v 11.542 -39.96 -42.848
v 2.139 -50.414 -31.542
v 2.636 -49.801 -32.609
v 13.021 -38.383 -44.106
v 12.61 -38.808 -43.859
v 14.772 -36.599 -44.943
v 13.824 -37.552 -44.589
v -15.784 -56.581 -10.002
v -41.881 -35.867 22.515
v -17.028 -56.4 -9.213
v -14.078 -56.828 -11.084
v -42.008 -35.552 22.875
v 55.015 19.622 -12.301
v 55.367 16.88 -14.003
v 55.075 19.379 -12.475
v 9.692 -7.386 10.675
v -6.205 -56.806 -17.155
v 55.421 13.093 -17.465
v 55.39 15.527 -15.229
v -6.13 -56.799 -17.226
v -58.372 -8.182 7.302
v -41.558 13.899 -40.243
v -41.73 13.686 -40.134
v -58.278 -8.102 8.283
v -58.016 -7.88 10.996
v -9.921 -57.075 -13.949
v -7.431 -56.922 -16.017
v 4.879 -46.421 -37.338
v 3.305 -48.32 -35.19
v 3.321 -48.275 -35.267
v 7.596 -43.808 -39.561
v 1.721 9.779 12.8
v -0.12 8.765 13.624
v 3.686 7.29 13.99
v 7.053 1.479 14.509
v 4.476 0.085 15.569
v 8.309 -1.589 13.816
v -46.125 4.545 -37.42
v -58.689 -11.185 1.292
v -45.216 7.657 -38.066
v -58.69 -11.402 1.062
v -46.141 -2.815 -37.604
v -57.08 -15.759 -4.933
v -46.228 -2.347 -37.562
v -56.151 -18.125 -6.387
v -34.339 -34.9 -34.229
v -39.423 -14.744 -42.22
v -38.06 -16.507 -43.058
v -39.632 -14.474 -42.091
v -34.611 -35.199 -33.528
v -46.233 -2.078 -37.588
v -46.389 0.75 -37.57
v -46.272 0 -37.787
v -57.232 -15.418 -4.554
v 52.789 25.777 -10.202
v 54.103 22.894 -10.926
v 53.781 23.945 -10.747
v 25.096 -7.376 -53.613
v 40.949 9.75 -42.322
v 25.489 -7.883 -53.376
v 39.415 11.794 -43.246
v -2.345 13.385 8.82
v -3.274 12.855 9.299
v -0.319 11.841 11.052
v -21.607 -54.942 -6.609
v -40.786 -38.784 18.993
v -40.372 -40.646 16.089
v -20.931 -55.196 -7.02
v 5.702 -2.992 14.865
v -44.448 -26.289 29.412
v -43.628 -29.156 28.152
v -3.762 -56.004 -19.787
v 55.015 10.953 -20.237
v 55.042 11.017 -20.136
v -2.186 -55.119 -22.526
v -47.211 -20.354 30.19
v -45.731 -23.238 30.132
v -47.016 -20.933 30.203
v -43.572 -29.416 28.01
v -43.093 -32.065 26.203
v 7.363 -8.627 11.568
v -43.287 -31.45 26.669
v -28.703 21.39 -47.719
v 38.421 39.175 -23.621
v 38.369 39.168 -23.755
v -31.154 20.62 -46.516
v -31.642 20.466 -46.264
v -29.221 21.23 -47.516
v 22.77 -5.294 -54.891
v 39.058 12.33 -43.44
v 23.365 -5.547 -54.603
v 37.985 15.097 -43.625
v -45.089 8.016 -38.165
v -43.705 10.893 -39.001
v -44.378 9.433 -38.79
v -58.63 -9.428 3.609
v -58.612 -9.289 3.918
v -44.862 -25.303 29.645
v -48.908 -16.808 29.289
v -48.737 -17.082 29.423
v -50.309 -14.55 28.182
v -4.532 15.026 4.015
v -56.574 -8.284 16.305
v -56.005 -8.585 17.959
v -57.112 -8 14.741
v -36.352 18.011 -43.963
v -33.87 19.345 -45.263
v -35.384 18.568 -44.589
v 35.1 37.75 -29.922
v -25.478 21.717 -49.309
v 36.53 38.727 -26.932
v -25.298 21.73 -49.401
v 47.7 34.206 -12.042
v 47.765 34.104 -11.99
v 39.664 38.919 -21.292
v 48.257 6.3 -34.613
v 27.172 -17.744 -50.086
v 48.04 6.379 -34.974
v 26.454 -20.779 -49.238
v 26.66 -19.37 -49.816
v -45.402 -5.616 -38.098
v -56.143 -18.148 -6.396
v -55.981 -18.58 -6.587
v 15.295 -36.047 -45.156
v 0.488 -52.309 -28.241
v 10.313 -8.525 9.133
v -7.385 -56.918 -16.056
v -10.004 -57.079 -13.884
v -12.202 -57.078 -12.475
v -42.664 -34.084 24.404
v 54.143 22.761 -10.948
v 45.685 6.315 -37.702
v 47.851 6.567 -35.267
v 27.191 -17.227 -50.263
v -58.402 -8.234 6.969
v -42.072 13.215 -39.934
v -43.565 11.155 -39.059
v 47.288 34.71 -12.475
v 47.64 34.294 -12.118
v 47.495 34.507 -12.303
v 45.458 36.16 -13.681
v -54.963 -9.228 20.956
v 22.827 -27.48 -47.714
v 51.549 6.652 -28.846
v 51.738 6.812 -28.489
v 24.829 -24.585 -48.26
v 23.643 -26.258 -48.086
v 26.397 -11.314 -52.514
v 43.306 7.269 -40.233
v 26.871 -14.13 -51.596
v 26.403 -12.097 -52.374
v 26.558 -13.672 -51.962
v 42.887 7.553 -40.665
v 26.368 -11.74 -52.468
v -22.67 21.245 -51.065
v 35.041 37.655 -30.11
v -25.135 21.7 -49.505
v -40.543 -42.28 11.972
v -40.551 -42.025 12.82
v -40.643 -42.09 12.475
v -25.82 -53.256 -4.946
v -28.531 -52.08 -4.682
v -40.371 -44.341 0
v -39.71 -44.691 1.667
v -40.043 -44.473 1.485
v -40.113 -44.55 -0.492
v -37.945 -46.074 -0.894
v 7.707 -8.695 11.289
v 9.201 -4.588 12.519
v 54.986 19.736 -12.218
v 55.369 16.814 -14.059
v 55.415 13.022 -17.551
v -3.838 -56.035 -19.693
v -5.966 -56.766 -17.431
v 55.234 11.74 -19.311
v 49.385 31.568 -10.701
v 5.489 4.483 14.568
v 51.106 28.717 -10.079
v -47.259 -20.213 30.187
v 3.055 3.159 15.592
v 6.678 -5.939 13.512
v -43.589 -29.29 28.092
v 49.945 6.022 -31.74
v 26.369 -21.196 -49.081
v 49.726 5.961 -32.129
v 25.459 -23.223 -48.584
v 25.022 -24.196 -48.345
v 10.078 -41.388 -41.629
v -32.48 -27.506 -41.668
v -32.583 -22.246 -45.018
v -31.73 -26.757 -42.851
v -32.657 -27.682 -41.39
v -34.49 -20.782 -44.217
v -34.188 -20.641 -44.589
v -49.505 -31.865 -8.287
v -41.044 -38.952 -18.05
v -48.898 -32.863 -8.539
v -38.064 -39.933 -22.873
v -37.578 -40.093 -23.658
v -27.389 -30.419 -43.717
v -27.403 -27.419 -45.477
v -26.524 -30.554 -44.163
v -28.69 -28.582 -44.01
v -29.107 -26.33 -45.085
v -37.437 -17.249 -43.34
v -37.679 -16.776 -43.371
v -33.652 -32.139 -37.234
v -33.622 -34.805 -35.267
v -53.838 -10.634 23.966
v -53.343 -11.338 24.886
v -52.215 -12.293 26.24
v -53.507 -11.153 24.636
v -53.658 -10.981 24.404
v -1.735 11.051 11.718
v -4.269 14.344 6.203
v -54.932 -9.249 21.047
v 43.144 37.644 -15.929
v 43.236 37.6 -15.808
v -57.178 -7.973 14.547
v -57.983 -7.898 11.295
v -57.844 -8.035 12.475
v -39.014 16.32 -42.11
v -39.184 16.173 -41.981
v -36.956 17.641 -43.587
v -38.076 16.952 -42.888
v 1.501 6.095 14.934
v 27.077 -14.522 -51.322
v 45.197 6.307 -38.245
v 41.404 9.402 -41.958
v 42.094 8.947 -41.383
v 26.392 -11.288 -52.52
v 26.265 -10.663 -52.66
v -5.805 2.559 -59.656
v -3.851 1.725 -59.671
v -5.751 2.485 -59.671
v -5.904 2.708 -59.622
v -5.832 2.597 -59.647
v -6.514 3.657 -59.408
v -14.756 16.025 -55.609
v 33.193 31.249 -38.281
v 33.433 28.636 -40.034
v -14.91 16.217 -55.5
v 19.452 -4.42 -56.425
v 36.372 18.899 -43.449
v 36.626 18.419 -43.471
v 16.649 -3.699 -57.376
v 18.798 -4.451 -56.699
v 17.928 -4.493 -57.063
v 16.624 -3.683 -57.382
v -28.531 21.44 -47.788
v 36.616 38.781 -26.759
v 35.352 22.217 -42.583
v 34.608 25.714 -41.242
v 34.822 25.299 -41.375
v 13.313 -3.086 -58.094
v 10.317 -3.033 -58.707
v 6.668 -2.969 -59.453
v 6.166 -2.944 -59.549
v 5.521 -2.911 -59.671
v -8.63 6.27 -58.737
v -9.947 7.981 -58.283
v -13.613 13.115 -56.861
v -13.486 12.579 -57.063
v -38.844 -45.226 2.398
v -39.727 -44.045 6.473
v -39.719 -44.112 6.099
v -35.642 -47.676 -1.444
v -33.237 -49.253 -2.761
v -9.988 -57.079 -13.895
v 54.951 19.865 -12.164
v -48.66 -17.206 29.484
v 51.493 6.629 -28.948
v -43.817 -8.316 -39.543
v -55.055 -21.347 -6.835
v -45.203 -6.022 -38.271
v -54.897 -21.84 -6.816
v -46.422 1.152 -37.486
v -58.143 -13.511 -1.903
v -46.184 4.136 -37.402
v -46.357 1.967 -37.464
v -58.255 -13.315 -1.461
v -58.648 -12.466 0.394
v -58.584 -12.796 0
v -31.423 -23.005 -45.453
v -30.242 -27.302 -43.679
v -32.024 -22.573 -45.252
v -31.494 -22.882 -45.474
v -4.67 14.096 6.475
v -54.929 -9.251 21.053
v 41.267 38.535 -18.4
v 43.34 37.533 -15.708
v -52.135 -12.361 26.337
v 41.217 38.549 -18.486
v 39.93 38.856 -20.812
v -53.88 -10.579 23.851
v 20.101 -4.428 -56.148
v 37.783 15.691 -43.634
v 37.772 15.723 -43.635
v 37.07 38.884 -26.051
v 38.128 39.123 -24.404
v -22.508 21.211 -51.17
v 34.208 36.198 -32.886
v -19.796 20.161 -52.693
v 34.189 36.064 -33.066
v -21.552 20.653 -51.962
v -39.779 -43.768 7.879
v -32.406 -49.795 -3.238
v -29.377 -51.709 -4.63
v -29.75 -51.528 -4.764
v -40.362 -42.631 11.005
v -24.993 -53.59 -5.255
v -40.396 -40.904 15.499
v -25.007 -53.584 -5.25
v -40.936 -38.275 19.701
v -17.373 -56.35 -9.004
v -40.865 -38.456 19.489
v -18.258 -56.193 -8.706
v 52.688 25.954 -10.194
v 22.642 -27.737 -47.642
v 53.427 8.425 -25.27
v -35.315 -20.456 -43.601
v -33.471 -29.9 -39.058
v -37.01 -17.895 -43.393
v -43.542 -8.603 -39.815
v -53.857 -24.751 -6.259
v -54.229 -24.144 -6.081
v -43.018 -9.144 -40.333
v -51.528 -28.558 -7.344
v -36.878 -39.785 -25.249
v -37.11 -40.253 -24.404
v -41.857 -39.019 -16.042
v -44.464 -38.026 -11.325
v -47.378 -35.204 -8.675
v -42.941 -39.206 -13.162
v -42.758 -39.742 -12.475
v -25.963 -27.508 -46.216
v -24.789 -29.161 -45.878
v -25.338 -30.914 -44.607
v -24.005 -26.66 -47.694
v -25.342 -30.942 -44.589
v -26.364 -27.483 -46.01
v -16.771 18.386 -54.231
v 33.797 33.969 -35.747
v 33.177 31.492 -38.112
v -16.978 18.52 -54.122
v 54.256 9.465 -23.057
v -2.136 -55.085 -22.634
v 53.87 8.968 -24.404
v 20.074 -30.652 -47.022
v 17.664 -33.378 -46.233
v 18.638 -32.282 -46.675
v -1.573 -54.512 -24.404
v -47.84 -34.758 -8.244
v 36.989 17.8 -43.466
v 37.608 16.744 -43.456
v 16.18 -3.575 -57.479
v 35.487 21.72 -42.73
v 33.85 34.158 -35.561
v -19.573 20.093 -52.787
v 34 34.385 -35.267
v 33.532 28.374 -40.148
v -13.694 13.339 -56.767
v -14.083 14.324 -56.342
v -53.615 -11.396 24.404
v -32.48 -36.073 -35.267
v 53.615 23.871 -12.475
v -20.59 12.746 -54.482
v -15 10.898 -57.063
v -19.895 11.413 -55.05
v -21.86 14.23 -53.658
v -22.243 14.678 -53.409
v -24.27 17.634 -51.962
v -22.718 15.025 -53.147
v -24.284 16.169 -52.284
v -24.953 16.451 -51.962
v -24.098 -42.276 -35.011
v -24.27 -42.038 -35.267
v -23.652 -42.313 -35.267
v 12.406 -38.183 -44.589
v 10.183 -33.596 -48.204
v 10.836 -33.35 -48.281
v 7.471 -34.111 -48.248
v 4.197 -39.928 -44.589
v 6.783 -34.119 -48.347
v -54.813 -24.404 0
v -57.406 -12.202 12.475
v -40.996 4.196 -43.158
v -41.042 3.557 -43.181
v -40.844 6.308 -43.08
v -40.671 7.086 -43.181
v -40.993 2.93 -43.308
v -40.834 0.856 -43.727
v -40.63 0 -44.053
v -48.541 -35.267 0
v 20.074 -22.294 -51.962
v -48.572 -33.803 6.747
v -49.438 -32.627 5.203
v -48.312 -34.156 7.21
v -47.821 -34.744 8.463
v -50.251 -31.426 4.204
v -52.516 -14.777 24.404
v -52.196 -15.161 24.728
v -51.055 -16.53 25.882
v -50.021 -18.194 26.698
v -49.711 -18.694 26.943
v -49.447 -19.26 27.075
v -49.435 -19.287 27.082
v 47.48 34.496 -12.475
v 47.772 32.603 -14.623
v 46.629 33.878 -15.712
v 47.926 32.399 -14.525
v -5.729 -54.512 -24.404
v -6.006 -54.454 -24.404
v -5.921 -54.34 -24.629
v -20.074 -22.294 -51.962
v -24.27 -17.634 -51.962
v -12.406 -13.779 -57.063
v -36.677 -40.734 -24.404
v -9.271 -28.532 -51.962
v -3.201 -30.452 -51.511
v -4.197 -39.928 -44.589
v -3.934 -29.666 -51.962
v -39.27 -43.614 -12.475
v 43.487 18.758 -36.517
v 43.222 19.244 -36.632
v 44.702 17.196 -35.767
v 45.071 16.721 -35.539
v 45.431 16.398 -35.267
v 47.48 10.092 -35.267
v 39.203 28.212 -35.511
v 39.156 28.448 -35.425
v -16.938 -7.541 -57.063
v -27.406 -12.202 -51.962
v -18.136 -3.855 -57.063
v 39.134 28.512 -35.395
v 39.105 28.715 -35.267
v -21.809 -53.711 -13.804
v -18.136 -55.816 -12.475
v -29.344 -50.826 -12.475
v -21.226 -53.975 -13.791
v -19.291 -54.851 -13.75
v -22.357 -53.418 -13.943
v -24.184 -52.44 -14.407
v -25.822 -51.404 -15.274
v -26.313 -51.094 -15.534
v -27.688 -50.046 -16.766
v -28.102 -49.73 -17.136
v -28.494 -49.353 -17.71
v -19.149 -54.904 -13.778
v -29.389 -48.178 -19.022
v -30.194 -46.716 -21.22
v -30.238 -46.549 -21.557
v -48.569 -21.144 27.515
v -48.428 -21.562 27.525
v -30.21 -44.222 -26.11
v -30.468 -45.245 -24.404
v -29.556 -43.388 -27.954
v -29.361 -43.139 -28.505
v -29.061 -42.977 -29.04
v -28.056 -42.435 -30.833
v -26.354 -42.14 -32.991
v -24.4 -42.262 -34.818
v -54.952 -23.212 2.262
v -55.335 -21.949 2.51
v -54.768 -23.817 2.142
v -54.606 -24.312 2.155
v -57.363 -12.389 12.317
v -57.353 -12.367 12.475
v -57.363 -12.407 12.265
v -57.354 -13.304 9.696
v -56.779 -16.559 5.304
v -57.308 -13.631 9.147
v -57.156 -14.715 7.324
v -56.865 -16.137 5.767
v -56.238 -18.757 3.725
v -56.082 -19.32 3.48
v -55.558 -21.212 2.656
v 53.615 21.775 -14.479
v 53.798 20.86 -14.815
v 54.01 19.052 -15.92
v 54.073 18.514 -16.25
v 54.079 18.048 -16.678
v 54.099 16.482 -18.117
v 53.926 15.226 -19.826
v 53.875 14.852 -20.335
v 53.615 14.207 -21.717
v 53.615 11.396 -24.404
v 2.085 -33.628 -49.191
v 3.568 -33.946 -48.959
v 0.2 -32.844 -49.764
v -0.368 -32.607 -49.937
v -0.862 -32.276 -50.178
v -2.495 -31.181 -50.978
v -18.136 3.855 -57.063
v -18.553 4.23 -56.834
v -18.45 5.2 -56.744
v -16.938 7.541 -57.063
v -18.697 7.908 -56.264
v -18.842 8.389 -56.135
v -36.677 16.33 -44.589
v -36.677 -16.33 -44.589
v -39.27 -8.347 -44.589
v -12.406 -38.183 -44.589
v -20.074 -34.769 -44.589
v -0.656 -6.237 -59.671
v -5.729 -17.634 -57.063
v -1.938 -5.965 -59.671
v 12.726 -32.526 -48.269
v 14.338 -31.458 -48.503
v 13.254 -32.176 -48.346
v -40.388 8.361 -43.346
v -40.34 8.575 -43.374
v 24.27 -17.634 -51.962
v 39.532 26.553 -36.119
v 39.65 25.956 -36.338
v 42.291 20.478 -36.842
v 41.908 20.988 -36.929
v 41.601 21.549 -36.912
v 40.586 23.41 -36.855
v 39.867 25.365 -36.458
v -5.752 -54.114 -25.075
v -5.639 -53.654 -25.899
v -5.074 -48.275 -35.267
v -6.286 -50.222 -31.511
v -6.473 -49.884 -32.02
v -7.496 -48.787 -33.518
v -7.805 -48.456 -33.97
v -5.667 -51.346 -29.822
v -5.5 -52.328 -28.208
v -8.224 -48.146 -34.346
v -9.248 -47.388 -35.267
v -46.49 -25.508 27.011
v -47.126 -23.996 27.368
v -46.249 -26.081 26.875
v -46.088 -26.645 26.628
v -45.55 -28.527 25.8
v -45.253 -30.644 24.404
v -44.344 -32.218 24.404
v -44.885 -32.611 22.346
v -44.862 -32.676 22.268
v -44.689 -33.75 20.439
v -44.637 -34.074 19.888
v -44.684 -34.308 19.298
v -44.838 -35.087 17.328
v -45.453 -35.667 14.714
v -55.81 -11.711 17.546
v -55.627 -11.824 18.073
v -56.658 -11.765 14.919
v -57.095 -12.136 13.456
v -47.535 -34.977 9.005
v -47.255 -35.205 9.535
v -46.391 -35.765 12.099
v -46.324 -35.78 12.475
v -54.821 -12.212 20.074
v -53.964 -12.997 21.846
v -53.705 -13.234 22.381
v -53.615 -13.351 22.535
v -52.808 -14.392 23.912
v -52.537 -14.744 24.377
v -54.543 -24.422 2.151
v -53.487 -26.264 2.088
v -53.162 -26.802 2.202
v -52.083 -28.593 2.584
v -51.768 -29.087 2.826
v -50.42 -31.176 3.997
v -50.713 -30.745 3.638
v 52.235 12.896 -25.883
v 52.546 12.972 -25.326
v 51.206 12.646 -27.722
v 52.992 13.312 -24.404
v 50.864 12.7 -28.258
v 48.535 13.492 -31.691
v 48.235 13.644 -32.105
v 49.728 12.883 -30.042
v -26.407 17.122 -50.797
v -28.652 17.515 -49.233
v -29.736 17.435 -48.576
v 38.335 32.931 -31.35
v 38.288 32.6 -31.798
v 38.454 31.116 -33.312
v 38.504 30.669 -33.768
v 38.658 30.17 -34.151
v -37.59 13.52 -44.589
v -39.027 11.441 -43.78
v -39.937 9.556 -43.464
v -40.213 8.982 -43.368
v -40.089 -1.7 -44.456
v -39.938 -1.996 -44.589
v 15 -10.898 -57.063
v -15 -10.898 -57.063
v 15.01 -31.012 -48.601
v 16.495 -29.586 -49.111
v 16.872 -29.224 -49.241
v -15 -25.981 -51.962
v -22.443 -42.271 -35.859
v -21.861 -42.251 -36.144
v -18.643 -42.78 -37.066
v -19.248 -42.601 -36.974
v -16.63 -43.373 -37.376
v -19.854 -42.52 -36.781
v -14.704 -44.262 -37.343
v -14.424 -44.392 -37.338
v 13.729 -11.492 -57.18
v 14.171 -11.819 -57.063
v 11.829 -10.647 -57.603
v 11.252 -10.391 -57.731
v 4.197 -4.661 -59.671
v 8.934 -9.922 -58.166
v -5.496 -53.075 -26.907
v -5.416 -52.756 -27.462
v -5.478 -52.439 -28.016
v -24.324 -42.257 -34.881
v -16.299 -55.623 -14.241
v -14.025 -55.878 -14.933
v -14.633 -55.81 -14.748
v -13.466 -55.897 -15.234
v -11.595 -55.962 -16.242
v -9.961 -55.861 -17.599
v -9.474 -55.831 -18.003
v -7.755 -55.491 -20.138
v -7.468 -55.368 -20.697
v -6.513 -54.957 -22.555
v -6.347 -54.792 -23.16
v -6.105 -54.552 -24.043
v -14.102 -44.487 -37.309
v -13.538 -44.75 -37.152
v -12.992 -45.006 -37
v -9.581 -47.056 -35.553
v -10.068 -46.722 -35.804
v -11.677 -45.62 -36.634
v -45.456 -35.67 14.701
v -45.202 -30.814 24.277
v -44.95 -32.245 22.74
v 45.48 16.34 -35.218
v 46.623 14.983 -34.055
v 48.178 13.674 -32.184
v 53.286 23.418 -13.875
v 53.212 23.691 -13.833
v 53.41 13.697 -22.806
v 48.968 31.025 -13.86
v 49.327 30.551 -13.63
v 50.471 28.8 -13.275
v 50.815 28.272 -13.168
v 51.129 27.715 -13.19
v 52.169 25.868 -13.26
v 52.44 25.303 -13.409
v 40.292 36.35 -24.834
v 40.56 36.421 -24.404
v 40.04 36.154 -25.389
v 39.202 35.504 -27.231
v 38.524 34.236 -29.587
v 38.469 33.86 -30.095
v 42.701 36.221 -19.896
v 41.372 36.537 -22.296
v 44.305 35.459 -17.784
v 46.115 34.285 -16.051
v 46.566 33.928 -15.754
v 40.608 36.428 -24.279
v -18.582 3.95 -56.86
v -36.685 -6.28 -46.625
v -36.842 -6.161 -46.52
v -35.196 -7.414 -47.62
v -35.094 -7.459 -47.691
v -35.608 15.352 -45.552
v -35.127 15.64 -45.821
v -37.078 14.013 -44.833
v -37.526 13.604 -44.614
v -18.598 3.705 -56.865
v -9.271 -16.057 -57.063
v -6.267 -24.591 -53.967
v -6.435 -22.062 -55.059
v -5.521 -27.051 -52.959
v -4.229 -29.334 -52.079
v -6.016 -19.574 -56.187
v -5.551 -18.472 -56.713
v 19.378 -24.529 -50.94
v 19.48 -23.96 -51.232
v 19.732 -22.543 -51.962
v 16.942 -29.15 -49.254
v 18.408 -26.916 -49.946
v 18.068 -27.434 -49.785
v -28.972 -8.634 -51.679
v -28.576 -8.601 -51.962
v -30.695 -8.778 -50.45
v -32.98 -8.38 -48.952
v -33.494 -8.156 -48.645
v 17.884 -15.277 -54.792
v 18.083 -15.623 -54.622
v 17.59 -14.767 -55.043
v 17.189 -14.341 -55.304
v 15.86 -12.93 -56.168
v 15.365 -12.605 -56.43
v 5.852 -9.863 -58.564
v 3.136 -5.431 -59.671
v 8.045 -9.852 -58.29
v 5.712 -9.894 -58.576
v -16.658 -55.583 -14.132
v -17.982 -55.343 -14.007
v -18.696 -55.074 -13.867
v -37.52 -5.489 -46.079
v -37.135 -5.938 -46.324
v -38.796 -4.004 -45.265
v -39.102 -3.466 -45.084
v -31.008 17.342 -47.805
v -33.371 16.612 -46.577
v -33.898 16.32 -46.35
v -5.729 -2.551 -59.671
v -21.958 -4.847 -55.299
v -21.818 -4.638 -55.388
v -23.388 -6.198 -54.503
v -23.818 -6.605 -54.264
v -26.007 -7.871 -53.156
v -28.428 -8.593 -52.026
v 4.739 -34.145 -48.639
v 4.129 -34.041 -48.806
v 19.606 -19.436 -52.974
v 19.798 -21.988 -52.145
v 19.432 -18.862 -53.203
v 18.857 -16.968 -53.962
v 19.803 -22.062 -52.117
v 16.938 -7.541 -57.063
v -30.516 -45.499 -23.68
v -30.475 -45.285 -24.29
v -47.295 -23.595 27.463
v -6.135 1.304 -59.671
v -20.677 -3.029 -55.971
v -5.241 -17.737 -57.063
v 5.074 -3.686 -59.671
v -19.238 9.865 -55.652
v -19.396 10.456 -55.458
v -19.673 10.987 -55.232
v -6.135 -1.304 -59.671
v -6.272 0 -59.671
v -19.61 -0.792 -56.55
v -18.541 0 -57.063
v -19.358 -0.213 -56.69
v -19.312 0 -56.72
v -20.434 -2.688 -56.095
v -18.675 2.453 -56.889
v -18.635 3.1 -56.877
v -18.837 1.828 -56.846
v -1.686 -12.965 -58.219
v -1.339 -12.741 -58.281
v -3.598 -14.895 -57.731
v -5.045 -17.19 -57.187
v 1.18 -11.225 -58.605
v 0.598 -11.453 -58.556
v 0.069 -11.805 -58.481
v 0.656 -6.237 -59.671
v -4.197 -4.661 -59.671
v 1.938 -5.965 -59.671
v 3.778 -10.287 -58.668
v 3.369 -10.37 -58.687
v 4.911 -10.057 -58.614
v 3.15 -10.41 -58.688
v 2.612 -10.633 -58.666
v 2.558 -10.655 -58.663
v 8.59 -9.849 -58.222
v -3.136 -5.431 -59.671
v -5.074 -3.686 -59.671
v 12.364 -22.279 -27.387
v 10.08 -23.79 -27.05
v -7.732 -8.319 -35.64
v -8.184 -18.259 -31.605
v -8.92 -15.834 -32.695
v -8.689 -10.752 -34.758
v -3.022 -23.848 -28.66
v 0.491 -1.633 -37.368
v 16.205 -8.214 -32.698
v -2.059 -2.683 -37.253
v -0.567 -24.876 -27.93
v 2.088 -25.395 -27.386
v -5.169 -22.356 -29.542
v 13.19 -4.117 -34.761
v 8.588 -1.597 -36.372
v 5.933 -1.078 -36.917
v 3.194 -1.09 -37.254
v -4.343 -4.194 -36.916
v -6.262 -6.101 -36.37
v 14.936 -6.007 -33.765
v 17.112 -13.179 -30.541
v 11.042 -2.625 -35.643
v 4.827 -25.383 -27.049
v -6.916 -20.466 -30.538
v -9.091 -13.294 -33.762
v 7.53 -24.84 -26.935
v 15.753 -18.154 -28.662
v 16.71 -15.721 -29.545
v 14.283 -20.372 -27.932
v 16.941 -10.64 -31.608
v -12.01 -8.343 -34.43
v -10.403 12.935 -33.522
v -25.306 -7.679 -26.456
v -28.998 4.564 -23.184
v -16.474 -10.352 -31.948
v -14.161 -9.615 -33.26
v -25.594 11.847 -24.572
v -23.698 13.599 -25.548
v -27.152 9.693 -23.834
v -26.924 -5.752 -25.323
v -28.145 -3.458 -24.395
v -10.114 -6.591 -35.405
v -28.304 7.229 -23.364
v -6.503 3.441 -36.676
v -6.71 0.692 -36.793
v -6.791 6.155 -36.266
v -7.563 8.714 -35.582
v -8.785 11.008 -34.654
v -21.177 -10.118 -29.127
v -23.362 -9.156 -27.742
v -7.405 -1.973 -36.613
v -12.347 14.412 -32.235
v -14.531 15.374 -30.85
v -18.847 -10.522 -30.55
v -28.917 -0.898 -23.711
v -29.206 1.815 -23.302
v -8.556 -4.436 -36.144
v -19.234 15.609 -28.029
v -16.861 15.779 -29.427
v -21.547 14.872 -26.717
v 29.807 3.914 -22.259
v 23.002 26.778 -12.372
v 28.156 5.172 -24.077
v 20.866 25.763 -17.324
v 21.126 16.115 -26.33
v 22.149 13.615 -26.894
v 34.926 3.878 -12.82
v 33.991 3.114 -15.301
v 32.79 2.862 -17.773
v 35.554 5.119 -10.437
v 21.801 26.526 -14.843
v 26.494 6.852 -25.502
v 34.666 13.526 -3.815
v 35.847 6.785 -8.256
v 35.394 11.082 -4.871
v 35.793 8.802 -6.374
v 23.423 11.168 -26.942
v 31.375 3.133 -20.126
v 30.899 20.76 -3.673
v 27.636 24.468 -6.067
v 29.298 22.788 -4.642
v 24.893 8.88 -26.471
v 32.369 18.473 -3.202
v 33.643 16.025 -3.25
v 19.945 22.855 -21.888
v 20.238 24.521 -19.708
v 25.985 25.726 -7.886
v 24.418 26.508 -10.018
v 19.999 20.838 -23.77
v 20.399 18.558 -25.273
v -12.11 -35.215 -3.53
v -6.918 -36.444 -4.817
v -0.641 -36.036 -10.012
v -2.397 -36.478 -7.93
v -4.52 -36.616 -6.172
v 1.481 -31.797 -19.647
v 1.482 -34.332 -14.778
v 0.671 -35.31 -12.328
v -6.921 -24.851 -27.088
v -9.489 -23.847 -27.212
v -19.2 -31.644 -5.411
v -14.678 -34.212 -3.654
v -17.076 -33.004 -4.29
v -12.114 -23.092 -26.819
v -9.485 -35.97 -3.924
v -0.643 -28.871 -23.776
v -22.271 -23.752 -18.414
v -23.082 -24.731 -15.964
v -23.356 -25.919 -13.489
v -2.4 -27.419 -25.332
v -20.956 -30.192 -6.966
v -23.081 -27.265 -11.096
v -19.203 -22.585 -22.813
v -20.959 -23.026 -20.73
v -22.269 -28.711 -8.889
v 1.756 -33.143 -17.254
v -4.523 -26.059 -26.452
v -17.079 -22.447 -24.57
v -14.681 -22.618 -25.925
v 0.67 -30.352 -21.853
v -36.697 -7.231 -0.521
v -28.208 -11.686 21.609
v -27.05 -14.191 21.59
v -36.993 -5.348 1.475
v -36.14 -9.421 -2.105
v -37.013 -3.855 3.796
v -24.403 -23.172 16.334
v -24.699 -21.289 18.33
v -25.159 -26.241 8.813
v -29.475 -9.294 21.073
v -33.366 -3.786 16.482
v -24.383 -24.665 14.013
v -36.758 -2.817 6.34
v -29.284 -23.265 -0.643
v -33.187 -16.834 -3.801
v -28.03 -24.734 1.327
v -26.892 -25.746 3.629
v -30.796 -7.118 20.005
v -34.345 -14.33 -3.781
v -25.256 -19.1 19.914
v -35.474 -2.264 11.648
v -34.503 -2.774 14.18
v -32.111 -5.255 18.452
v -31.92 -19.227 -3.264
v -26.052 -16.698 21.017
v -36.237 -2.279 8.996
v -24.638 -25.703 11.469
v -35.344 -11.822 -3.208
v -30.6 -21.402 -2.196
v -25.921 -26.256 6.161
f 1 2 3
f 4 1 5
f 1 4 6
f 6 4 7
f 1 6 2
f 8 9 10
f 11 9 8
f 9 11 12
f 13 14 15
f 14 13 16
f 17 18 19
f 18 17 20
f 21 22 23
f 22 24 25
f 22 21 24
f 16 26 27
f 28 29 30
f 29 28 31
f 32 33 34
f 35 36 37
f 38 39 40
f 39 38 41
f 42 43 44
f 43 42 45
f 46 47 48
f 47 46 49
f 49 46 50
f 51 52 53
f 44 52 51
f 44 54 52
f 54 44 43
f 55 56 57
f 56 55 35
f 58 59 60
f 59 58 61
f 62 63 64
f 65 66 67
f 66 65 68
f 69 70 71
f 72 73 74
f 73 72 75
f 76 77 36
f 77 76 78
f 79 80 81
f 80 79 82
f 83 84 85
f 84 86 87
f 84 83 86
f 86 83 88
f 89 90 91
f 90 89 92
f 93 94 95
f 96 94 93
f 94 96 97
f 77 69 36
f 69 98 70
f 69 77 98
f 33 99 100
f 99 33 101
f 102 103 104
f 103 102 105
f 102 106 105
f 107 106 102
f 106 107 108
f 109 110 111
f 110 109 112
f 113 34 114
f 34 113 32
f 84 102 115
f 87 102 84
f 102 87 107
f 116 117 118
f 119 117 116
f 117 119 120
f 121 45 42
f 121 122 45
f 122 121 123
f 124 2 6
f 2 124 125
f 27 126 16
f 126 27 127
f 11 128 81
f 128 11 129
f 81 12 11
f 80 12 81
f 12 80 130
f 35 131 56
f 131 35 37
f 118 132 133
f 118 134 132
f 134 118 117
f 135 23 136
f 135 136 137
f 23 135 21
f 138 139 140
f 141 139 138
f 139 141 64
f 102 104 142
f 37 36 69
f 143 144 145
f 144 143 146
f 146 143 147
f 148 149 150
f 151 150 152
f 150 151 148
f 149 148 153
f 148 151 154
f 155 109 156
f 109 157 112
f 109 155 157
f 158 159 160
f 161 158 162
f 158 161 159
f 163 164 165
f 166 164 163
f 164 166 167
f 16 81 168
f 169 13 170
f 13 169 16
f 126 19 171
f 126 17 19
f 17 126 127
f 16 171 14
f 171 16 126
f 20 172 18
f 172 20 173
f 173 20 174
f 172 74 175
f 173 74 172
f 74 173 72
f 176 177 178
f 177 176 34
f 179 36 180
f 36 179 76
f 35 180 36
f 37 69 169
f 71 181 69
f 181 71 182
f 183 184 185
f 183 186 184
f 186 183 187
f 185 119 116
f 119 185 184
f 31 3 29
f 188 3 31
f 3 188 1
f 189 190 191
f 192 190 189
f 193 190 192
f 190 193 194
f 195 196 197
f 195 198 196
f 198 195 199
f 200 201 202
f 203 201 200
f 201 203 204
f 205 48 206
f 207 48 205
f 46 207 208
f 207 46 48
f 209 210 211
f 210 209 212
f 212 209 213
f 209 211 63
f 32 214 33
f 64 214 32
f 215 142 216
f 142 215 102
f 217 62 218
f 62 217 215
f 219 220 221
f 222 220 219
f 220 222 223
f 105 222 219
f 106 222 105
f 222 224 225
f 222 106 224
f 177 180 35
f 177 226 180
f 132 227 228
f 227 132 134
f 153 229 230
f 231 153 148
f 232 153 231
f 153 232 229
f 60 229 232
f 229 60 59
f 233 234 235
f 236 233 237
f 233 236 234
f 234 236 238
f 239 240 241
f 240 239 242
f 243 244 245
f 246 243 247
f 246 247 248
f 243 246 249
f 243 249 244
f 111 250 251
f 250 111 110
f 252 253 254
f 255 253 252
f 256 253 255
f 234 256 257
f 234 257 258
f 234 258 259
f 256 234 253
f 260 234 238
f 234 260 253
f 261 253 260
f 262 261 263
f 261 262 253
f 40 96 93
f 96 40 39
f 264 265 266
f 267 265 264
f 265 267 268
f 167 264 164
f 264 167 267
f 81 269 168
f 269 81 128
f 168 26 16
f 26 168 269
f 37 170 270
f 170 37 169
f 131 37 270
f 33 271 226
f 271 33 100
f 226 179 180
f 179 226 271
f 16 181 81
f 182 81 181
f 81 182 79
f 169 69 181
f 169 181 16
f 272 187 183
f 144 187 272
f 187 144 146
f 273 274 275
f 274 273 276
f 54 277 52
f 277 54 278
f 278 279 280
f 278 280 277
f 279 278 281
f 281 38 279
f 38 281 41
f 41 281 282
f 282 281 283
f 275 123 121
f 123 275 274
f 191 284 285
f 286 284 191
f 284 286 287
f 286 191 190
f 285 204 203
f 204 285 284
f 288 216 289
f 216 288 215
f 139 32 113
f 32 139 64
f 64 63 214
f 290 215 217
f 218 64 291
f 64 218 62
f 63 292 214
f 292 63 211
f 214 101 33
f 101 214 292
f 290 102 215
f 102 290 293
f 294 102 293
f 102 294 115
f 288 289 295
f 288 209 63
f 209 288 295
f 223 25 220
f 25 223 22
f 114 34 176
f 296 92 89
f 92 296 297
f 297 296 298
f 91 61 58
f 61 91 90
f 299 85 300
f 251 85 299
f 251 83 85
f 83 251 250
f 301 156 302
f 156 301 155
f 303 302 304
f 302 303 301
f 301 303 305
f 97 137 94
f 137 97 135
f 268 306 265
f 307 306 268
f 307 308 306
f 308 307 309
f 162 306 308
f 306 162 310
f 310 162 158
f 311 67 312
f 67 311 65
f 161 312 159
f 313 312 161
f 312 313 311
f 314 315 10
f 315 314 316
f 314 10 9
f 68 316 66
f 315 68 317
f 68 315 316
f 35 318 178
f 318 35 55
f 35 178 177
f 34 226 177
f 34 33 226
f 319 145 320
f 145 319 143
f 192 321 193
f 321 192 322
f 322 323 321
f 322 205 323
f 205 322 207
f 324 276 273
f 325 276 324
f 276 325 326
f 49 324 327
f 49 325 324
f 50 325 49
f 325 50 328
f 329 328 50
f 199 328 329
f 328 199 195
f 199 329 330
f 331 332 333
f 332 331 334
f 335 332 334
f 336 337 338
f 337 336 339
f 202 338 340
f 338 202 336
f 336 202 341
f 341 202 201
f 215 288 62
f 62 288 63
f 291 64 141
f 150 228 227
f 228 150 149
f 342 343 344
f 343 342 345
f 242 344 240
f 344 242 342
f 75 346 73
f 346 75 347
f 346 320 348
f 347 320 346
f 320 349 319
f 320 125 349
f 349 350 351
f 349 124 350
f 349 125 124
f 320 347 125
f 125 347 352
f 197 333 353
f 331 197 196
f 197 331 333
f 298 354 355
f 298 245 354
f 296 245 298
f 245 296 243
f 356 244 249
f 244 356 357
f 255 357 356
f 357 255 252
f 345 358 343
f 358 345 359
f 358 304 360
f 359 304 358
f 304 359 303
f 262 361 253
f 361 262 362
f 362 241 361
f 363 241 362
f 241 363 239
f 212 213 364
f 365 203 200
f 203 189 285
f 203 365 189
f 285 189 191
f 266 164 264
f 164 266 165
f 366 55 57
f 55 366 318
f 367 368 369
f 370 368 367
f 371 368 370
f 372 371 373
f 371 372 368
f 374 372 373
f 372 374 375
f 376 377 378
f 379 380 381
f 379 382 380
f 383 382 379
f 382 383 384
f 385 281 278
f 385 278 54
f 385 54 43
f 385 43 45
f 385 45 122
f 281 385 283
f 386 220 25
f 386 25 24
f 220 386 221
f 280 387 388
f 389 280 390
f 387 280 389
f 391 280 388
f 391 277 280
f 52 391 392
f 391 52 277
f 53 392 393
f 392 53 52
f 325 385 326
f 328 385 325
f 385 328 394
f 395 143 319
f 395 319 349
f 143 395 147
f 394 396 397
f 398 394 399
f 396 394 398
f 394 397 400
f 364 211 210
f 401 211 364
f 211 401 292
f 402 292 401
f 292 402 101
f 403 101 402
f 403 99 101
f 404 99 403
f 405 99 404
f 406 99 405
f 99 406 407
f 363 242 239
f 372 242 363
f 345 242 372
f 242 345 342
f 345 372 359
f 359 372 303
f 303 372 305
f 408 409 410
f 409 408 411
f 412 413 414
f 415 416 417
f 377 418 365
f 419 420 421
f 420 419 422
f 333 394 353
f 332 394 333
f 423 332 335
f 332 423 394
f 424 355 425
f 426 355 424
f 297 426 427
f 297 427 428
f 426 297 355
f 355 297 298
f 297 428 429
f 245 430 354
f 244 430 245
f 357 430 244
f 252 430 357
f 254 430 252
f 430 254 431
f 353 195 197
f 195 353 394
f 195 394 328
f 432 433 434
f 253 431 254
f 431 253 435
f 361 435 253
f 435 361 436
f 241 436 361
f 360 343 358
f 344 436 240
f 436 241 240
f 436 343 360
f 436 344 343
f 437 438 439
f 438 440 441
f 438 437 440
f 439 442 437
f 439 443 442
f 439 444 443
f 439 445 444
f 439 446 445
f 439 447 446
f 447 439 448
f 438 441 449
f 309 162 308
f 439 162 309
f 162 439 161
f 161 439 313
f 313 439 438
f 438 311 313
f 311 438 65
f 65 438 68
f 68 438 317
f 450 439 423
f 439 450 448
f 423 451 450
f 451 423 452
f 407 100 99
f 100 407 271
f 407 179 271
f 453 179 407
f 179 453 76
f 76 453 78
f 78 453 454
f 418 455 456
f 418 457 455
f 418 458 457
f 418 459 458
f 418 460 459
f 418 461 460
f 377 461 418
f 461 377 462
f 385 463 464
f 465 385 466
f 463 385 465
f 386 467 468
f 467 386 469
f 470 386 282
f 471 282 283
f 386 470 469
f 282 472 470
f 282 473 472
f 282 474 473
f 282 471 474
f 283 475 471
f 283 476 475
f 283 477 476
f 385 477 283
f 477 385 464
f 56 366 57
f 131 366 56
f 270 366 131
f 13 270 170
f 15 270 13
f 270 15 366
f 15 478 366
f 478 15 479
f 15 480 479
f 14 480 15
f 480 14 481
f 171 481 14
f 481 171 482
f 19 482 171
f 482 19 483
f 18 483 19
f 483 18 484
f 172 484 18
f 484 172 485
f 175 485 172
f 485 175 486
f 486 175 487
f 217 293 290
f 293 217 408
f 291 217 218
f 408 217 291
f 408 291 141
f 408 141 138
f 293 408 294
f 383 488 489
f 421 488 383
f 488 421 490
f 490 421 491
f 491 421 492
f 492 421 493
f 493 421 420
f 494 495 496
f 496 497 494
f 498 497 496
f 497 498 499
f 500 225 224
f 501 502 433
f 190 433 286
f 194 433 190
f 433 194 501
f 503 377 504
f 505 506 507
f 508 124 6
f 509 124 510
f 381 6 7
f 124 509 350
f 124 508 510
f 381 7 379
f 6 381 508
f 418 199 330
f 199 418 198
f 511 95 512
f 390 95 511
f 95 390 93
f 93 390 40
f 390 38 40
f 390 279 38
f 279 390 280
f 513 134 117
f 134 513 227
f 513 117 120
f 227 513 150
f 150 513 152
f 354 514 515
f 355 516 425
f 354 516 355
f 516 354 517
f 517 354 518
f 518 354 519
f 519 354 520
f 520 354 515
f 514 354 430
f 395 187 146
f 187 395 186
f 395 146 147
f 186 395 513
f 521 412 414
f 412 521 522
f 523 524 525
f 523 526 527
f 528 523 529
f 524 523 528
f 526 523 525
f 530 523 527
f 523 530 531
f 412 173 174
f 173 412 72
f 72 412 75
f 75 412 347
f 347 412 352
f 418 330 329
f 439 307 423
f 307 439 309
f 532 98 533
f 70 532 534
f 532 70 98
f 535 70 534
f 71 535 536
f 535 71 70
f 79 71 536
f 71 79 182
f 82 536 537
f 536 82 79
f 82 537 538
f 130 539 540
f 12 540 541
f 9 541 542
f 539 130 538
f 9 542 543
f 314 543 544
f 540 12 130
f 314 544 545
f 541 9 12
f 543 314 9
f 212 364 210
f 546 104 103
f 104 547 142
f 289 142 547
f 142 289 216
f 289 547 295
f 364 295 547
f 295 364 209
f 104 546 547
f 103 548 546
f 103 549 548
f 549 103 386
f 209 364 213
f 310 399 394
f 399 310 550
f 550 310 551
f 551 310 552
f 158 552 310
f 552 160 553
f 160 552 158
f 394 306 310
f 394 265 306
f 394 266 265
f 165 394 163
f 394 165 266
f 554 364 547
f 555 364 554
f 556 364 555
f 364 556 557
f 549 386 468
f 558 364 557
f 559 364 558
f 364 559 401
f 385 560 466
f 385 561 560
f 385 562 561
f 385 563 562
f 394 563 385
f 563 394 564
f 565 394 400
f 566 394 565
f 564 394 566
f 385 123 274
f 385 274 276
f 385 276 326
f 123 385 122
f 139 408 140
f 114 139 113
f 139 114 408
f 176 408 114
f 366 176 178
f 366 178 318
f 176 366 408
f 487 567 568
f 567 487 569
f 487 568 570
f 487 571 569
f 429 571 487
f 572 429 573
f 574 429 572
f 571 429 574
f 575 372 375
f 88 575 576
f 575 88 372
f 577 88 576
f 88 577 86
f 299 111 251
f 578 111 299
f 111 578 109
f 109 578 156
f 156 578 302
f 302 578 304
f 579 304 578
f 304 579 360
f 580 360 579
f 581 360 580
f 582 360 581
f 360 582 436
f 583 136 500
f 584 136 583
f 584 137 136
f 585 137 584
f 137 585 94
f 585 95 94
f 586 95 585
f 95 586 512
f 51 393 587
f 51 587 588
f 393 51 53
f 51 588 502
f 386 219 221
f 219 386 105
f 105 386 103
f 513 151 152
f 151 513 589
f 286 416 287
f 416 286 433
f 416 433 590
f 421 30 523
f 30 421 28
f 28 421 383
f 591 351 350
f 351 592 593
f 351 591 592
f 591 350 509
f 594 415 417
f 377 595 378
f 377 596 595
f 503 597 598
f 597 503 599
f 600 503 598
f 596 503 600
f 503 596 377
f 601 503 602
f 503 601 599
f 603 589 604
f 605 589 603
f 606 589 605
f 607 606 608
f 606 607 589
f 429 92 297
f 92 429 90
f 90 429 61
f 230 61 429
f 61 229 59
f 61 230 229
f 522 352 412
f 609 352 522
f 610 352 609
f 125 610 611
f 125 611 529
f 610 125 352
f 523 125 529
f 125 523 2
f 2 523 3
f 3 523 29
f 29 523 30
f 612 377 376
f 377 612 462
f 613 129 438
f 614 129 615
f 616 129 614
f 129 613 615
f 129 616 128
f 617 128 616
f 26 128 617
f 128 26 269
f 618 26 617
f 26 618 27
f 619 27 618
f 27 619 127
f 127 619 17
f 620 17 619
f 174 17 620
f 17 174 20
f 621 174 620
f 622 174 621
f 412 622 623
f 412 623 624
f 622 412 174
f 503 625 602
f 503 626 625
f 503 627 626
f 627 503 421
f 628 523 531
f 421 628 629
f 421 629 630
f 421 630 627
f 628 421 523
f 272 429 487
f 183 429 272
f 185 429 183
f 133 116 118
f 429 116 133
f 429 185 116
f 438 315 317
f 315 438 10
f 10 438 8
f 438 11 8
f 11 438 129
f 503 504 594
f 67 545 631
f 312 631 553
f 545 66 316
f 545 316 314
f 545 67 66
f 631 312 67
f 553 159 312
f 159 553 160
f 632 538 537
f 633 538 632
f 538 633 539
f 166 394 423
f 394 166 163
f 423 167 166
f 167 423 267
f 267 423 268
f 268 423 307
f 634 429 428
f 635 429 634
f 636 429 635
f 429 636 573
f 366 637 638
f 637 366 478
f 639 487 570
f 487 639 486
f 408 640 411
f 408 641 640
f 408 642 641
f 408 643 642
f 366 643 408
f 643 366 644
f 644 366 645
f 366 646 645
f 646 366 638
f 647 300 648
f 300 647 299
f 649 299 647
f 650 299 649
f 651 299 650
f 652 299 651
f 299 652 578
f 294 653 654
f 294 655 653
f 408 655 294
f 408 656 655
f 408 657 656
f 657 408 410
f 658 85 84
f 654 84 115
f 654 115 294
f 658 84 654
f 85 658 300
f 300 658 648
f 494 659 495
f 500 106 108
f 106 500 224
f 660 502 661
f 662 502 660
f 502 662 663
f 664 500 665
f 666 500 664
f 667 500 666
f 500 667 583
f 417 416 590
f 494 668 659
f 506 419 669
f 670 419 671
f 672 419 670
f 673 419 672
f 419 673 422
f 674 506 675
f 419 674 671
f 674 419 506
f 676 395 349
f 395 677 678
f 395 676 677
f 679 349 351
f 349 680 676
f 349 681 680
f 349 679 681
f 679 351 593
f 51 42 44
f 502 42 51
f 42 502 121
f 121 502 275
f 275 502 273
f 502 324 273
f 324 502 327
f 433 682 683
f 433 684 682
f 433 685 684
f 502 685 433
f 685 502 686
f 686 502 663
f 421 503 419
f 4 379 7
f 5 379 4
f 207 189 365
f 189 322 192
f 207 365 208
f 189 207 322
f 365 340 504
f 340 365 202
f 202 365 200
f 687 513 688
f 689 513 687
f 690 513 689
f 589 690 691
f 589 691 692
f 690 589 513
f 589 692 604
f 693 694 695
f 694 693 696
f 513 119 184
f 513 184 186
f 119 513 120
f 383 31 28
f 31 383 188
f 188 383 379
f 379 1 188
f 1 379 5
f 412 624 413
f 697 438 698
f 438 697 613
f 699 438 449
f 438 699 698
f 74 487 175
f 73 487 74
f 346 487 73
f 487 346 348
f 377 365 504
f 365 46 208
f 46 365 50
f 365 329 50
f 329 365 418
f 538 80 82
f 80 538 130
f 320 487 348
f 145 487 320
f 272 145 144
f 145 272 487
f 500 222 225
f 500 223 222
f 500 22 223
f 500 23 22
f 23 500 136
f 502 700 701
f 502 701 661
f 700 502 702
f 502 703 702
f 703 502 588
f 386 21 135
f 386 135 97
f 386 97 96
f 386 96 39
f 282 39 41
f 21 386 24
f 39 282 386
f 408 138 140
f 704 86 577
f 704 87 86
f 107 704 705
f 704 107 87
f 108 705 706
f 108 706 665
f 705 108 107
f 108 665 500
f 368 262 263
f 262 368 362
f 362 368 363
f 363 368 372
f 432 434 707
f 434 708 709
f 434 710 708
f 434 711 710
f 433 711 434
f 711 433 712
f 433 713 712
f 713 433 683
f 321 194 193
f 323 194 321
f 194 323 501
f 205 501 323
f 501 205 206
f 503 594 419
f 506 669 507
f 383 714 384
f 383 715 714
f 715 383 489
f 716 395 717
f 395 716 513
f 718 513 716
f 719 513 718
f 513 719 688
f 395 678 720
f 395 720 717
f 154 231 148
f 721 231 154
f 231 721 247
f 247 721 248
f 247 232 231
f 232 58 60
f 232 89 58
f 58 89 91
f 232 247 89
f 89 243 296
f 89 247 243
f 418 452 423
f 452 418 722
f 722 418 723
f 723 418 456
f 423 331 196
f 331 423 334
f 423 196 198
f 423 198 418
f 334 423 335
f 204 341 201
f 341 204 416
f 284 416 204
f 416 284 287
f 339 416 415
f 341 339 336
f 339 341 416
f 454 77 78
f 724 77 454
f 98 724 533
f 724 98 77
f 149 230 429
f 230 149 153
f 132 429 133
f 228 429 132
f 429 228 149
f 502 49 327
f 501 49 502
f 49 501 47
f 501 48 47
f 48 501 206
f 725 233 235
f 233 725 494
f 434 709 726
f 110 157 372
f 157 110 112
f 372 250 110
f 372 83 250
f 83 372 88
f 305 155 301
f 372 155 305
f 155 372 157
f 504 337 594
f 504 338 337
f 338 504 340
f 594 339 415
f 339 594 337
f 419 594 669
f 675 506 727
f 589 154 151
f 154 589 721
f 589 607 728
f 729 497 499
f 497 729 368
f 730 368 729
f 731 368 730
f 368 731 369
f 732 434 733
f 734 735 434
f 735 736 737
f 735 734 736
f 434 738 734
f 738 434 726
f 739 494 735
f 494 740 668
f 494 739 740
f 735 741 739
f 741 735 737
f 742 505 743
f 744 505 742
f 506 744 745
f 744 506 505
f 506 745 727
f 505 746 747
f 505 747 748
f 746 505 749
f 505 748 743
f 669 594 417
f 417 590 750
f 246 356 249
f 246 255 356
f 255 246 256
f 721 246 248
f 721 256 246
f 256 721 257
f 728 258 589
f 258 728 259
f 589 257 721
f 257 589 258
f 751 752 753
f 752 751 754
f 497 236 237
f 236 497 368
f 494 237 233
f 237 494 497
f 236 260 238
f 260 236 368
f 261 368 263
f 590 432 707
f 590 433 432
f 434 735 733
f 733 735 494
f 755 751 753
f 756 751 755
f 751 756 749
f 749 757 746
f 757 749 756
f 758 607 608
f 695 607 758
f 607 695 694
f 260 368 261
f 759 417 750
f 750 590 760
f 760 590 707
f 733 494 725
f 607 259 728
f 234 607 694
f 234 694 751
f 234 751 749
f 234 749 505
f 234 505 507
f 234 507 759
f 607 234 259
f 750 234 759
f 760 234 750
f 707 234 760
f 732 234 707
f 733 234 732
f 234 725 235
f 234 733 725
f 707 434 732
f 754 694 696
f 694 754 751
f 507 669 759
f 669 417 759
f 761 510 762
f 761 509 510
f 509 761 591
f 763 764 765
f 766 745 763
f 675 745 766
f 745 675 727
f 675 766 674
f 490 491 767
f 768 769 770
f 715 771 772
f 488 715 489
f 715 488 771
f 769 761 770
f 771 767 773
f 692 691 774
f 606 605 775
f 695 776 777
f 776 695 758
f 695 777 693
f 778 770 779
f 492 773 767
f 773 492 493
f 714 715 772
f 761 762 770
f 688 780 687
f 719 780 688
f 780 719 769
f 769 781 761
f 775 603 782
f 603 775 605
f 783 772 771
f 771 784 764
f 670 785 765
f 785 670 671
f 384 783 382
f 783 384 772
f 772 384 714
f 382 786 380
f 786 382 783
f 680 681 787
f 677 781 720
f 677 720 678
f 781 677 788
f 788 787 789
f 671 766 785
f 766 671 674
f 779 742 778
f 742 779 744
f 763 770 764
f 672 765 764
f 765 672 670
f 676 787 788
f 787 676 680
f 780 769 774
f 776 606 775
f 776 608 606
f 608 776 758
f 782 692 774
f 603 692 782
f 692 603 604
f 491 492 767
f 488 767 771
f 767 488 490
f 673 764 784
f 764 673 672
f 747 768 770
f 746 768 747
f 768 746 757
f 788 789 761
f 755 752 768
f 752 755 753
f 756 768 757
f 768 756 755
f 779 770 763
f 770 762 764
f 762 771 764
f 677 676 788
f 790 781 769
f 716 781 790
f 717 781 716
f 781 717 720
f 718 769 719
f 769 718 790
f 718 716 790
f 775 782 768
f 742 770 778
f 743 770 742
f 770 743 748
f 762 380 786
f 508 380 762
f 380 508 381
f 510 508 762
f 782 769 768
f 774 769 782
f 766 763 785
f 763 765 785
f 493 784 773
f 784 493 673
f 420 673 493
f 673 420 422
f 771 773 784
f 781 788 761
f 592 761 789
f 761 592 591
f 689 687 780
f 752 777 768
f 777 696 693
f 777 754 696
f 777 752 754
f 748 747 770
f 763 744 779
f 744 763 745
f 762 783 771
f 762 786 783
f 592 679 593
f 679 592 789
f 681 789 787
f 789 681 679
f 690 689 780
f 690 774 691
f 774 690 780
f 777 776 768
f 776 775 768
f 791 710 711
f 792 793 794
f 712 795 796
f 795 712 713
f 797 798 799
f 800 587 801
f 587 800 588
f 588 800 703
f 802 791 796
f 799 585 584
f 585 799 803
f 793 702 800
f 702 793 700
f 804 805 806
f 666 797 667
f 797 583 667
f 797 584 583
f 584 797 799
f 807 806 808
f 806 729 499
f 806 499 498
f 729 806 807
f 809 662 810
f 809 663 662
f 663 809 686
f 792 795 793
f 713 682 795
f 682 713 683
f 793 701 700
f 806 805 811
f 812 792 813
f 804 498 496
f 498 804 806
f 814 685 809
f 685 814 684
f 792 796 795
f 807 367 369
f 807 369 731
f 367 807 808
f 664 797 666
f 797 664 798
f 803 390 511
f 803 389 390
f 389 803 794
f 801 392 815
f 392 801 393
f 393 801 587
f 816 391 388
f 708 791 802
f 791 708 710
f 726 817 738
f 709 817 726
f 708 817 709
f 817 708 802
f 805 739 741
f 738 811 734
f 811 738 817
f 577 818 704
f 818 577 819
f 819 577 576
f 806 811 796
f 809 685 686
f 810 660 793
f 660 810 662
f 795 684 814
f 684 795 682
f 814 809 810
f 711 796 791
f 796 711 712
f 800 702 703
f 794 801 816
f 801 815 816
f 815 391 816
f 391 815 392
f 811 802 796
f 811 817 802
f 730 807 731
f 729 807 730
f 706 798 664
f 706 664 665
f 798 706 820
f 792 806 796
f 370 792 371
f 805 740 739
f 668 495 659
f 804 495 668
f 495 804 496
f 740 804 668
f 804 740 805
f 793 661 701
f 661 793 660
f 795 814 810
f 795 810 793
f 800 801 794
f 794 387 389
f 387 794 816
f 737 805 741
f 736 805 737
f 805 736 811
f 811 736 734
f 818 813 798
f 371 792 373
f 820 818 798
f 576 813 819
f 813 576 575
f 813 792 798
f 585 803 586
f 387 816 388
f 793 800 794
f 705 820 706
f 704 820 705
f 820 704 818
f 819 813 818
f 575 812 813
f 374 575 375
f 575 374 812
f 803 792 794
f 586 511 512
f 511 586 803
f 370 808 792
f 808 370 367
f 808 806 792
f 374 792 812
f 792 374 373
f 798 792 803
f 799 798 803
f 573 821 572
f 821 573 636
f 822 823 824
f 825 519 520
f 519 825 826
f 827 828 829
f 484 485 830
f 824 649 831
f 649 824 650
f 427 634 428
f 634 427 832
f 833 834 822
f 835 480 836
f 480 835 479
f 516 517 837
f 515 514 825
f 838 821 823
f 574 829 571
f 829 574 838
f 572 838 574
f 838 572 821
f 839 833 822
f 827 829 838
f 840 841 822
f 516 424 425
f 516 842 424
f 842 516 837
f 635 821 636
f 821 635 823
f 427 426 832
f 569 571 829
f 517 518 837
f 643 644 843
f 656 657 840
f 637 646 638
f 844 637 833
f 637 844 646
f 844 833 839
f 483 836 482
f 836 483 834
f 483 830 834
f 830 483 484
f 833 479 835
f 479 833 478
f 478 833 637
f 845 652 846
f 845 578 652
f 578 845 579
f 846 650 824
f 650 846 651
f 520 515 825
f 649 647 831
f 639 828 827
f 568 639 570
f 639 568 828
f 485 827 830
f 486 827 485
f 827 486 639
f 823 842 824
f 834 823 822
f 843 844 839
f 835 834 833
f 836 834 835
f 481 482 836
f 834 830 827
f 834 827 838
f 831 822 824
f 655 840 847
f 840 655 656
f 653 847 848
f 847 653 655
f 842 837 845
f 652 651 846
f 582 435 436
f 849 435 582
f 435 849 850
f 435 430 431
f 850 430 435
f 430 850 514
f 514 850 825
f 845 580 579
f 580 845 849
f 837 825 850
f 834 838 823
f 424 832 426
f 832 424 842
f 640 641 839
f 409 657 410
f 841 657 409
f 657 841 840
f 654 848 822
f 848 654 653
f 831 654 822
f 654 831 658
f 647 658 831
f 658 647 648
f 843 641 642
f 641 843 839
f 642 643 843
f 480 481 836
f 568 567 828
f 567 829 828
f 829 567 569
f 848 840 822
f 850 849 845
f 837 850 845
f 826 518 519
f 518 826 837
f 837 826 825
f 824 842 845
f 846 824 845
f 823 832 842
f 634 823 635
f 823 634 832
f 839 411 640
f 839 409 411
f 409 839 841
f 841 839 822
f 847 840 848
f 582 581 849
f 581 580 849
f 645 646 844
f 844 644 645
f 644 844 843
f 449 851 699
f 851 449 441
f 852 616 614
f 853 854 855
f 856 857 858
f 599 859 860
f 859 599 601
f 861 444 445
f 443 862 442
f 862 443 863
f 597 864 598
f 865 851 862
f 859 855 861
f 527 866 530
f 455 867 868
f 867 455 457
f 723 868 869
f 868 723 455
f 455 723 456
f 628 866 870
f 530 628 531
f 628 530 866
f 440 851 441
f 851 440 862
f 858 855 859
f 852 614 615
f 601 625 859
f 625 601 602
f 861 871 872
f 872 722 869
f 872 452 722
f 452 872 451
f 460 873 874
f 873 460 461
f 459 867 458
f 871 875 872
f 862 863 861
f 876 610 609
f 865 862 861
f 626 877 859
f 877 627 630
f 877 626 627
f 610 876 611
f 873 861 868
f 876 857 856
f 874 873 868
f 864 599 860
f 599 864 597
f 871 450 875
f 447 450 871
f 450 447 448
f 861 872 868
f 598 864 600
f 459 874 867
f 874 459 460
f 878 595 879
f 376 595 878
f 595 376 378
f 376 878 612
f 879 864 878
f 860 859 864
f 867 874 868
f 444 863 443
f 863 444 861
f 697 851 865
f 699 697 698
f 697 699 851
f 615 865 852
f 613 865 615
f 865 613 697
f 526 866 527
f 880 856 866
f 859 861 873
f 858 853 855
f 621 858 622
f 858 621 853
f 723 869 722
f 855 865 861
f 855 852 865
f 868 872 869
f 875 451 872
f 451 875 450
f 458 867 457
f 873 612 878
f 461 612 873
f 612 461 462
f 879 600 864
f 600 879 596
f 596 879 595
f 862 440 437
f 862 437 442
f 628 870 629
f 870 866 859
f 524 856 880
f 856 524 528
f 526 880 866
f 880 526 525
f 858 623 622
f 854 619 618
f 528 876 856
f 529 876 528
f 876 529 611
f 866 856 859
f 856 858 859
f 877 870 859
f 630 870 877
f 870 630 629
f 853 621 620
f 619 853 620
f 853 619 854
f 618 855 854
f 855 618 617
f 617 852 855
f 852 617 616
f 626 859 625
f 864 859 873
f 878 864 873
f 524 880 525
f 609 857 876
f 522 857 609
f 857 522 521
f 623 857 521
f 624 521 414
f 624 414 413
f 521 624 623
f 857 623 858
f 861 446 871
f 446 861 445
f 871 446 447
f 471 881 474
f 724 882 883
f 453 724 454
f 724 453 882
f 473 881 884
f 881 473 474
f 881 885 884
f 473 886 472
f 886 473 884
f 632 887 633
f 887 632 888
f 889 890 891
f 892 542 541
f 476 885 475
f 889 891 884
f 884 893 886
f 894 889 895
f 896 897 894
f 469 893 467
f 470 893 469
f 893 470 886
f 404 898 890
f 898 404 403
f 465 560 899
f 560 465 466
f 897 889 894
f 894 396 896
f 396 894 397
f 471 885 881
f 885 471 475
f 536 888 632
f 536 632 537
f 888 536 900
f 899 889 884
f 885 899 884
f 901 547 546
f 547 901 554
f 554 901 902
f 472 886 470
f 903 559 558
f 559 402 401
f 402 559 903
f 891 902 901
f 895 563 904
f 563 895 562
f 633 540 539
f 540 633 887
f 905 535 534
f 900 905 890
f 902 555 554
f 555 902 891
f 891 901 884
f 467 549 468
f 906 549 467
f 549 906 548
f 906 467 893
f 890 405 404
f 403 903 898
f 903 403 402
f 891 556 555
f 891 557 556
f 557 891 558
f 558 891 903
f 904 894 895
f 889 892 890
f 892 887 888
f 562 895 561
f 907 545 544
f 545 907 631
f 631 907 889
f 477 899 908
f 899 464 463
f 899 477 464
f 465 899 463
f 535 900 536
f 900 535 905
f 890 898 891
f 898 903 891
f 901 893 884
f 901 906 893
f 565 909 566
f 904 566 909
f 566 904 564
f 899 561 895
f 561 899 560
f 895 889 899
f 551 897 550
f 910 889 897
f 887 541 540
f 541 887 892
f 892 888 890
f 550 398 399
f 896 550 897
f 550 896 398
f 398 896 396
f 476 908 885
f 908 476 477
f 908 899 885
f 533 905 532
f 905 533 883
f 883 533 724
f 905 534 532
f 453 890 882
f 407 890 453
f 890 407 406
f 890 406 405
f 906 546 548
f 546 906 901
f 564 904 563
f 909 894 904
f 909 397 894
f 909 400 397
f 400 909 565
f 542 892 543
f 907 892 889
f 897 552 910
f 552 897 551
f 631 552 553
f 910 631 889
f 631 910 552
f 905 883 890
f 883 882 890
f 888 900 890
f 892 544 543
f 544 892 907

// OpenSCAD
difference() {
	intersection() {
		hull() {
			rotate(a = -104.9619843639, v = [0.7939027898, -0.5505110625, 0.0000000000]) {
				rotate(a = -90.0000000000, v = [0.6049173981, -0.7962882276, 0.0000000000]) {
					cylinder(h = 60, r = 16.2000000000);
				}
			}
			rotate(a = -104.9619843639, v = [0.7939027898, -0.5505110625, 0.0000000000]) {
				rotate(a = -90.0000000000, v = [0.9920645329, -0.1257297202, 0.0000000000]) {
					cylinder(h = 60, r = 16.2000000000);
				}
			}
			rotate(a = -104.9619843639, v = [0.7939027898, -0.5505110625, 0.0000000000]) {
				rotate(a = -27.6102972421, v = [-0.0640329190, -0.4590104546, 0.0000000000]) {
					cylinder(h = 60, r = 16.2000000000);
				}
			}
			rotate(a = -104.9619843639, v = [0.7939027898, -0.5505110625, 0.0000000000]) {
				rotate(a = -136.5800781830, v = [0.4035906054, -0.5563731091, 0.0000000000]) {
					cylinder(h = 60, r = 16.2000000000);
				}
			}
			rotate(a = -104.9619843639, v = [0.7939027898, -0.5505110625, 0.0000000000]) {
				rotate(a = -150.6905905926, v = [0.2535028282, 0.4187740306, -0.0000000000]) {
					cylinder(h = 60, r = 16.2000000000);
				}
			}
		}
		sphere(r = 60);
	}
	union() {
		rotate(a = -104.9619843639, v = [0.7939027898, -0.5505110625, 0.0000000000]) {
			rotate(a = -90.0000000000, v = [0.6049173981, -0.7962882276, 0.0000000000]) {
				translate(v = [0, 0, 35]) {
					cylinder(h = 100, r = 13.2000000000);
				}
			}
		}
		rotate(a = -104.9619843639, v = [0.7939027898, -0.5505110625, 0.0000000000]) {
			rotate(a = -90.0000000000, v = [0.9920645329, -0.1257297202, 0.0000000000]) {
				translate(v = [0, 0, 35]) {
					cylinder(h = 100, r = 13.2000000000);
				}
			}
		}
		rotate(a = -104.9619843639, v = [0.7939027898, -0.5505110625, 0.0000000000]) {
			rotate(a = -27.6102972421, v = [-0.0640329190, -0.4590104546, 0.0000000000]) {
				translate(v = [0, 0, 35]) {
					cylinder(h = 100, r = 13.2000000000);
				}
			}
		}
		rotate(a = -104.9619843639, v = [0.7939027898, -0.5505110625, 0.0000000000]) {
			rotate(a = -136.5800781830, v = [0.4035906054, -0.5563731091, 0.0000000000]) {
				translate(v = [0, 0, 35]) {
					cylinder(h = 100, r = 13.2000000000);
				}
			}
		}
		rotate(a = -104.9619843639, v = [0.7939027898, -0.5505110625, 0.0000000000]) {
			rotate(a = -150.6905905926, v = [0.2535028282, 0.4187740306, -0.0000000000]) {
				translate(v = [0, 0, 35]) {
					cylinder(h = 100, r = 13.2000000000);
				}
			}
		}
	}
}
